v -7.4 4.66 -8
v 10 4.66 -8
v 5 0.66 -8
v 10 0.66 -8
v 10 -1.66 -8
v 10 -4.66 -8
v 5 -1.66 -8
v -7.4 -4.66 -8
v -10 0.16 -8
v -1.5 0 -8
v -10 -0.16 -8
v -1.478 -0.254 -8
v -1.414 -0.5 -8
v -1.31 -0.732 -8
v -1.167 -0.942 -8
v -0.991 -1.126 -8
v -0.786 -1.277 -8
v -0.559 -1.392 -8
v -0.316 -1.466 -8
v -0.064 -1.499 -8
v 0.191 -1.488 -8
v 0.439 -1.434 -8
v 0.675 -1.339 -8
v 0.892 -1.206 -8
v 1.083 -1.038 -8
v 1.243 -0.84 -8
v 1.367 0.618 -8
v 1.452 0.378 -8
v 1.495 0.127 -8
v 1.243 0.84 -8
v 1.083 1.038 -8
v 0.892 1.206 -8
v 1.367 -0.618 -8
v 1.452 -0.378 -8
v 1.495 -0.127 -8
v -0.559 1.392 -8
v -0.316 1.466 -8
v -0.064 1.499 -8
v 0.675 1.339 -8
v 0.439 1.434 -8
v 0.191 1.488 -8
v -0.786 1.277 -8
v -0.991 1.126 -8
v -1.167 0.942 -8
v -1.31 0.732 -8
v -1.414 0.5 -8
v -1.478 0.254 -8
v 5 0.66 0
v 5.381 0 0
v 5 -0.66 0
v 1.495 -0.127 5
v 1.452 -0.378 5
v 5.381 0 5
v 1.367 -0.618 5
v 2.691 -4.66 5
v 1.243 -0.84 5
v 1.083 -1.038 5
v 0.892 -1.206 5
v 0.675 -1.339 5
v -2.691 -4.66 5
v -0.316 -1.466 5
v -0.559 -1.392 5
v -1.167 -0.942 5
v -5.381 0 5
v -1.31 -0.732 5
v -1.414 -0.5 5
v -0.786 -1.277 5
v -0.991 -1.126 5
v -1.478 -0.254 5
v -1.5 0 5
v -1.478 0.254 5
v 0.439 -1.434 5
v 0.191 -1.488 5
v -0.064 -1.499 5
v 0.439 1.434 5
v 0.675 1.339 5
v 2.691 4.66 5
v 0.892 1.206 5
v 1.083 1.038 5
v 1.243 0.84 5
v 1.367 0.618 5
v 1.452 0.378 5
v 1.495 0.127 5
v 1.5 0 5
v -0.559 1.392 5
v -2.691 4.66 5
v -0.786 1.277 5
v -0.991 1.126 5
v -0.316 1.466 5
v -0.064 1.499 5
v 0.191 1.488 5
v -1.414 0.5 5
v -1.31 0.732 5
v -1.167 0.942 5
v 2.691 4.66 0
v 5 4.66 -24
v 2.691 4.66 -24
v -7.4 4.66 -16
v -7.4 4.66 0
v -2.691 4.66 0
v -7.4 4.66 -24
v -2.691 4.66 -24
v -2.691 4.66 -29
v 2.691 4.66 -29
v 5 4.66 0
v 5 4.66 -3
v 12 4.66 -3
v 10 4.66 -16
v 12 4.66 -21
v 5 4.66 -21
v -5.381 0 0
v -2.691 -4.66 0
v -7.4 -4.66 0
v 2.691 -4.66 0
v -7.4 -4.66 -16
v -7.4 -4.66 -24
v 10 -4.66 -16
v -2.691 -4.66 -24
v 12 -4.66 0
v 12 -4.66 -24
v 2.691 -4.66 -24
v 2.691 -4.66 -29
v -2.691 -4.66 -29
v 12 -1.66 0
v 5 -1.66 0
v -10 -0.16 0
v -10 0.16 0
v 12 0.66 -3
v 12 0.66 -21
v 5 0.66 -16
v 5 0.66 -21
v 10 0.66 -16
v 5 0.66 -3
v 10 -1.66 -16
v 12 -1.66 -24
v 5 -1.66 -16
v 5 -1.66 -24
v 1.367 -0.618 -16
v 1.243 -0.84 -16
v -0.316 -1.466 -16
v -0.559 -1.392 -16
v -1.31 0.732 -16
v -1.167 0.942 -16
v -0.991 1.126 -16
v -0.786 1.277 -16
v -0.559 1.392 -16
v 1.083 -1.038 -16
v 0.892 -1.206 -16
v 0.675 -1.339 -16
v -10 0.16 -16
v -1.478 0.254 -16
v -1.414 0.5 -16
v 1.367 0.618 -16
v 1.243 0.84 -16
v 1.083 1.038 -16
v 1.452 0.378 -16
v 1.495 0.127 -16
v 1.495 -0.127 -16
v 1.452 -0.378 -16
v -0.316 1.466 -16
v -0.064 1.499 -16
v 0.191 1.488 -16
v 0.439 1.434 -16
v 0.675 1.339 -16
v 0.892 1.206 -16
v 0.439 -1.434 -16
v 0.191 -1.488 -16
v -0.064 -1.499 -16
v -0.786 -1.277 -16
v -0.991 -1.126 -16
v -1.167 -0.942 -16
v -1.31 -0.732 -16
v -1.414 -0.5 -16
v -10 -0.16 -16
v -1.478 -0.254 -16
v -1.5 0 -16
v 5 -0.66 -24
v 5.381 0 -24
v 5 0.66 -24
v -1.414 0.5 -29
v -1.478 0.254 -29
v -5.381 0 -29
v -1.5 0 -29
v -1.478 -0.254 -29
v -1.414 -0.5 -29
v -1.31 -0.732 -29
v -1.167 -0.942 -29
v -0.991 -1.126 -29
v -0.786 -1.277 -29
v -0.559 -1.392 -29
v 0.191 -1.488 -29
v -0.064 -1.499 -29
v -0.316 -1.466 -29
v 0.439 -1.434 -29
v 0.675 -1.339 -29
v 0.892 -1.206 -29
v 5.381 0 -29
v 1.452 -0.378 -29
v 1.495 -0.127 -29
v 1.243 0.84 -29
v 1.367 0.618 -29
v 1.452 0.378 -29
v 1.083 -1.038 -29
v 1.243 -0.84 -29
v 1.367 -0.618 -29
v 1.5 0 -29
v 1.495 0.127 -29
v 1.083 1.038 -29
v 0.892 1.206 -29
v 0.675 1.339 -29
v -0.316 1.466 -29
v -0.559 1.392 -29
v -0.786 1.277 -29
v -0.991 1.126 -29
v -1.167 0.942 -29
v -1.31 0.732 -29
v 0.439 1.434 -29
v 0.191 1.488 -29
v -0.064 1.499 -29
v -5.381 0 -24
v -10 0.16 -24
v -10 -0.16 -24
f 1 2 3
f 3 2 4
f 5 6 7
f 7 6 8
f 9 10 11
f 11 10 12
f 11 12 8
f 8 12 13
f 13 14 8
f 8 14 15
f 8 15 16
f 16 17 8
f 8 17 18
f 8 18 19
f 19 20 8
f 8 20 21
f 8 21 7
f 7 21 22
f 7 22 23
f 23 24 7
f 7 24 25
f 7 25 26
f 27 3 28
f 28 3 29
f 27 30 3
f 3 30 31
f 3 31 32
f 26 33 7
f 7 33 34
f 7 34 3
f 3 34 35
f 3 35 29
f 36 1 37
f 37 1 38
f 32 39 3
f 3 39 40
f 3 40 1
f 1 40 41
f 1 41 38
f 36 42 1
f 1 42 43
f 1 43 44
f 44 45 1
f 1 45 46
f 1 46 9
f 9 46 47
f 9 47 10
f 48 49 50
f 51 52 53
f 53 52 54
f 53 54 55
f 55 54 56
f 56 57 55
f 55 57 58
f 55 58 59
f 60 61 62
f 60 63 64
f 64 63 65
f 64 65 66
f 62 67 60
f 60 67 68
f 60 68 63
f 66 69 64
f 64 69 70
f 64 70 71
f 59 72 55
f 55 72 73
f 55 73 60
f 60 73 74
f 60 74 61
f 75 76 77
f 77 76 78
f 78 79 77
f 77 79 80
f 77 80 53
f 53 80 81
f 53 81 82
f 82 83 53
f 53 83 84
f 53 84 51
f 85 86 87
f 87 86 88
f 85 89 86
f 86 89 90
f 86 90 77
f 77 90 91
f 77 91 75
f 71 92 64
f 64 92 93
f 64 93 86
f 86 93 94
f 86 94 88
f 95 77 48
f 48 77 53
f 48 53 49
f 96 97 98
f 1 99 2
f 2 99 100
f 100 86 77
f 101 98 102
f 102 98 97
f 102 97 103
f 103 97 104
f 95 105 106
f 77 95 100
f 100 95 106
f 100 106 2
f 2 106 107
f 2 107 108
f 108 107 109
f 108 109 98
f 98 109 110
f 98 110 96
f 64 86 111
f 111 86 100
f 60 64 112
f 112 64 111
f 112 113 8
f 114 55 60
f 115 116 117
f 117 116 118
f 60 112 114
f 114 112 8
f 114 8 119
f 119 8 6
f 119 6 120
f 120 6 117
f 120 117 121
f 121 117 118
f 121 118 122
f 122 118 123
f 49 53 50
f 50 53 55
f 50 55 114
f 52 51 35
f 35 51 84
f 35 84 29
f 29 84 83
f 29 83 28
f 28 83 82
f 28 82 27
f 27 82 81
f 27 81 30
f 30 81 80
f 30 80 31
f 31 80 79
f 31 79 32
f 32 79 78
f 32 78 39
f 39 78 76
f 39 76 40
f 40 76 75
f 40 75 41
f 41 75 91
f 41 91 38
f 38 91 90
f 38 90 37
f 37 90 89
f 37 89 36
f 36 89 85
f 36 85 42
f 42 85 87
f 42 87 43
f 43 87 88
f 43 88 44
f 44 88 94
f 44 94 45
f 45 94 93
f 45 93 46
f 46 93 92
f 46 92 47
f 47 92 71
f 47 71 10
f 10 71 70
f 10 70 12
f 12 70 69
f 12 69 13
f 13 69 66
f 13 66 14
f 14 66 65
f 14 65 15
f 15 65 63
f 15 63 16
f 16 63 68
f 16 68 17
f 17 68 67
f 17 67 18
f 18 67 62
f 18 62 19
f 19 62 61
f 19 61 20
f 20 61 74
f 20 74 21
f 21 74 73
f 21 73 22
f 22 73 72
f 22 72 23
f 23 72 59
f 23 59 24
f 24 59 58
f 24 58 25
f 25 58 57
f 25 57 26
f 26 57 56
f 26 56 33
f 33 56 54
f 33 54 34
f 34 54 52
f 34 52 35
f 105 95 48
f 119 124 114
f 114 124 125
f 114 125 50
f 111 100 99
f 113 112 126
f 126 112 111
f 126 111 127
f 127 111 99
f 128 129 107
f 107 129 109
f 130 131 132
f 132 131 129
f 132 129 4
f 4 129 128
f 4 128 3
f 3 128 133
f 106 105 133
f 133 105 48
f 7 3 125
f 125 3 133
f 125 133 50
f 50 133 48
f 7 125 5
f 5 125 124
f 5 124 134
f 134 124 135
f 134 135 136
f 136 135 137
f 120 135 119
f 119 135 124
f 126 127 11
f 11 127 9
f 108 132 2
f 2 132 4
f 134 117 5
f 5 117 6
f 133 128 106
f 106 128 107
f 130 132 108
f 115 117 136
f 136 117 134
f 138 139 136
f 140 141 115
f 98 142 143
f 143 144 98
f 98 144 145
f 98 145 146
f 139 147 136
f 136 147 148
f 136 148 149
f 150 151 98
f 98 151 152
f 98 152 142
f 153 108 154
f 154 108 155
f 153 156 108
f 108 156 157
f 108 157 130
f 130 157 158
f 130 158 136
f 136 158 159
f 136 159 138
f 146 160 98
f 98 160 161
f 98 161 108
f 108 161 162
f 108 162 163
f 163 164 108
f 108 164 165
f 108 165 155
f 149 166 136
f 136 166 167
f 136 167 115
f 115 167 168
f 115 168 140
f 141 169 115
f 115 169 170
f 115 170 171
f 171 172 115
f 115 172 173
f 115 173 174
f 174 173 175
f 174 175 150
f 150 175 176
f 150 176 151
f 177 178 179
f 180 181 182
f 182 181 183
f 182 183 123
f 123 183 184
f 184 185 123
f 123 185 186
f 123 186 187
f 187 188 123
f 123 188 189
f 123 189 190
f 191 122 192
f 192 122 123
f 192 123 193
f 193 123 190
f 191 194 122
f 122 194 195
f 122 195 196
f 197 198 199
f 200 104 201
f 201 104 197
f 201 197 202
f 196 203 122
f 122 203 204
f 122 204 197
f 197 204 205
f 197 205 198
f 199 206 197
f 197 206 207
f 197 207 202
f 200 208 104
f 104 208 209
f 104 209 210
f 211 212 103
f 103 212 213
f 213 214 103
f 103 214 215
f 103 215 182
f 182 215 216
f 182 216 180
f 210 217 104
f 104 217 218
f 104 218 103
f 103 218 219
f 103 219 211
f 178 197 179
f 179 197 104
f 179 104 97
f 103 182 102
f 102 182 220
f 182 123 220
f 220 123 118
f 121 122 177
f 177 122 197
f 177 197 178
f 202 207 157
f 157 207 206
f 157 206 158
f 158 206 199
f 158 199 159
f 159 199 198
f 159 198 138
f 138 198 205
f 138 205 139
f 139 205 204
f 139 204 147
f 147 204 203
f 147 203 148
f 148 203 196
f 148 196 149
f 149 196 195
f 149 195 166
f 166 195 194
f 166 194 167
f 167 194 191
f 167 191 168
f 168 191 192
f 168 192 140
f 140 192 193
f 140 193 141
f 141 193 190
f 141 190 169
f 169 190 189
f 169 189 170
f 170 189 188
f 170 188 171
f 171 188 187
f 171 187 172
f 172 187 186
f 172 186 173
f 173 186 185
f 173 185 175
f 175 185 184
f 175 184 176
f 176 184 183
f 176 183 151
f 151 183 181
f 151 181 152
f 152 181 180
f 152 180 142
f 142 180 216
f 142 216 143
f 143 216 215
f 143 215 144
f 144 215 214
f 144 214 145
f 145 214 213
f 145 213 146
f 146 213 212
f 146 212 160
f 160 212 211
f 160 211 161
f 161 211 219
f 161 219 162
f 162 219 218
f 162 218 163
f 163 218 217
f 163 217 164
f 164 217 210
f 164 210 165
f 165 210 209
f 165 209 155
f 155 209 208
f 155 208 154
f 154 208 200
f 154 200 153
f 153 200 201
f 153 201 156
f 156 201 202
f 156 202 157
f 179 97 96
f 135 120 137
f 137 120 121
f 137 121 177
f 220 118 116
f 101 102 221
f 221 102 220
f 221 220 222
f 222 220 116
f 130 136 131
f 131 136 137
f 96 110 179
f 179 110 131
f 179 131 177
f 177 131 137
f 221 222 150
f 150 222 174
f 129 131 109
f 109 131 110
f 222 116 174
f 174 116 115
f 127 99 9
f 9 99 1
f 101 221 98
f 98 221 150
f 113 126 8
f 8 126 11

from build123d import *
from OCP.BRepFilletAPI import BRepFilletAPI_MakeChamfer
from build123d.topology import SkipClean

# Parameters (mm, degrees)
ESQUISSE1_R             = 1.5
BOSS_EXTRU_1_DEPTH      = 5
BOSS_EXTRU_3_START      = 8
ESQUISSE3_R             = 1.5
BOSS_EXTRU_3_DEPTH      = 8
ESQUISSE4_W             = 2
ESQUISSE4_H             = 4
ESQUISSE4_H_2           = 3
BOSS_EXTRU_4_DEPTH      = 4
ESQUISSE5_W             = 7
ESQUISSE5_H             = 3
ENL_V_MAT_EXTRU_1_DEPTH = 4
CHANFREIN2_SIZE         = 4.5
CHANFREIN2_SIZE2        = 2.6
CHANFREIN3_SIZE         = 2.6
CHANFREIN3_SIZE2        = 4.5


with BuildPart() as part:
    # Esquisse1 → Boss.-Extru.1 (new body)
    with BuildSketch(Plane.XY):
        Polygon((2.690598923, 4.660254038), (-2.690598923, 4.660254038), (-5.381197846, 0), (-2.690598923, -4.660254038), (2.690598923, -4.660254038), (5.381197846, 0), align=None)
        Circle(ESQUISSE1_R, mode=Mode.SUBTRACT)
    boss_extru_1 = extrude(amount=BOSS_EXTRU_1_DEPTH)

    # Esquisse3 → Boss.-Extru.3 (add)
    with SkipClean():  # the faces are left unmerged after this step: merging them gives an invalid solid
        with BuildSketch(Plane(origin=(0, 0, 0), x_dir=(-1, 0, 0), z_dir=(0, 0, -1)).offset(BOSS_EXTRU_3_START)):
            Polygon((-12, 4.660254038), (10, 4.660254038), (10, -4.660254038), (-12, -4.660254038), (-12, -1.660254038), (-5, -1.660254038), (-5, 0.660254038), (-12, 0.660254038), align=None)
            Circle(ESQUISSE3_R, mode=Mode.SUBTRACT)
        boss_extru_3 = extrude(amount=-BOSS_EXTRU_3_DEPTH)

    # Esquisse4 → Boss.-Extru.4 (add)
    with SkipClean():  # the faces are left unmerged after this step: merging them gives an invalid solid
        with BuildSketch(Plane(origin=(0, 0, -8), x_dir=(-1, 0, 0), z_dir=(0, 0, -1))):
            with Locations((-11, 2.660254038)):
                Rectangle(ESQUISSE4_W, ESQUISSE4_H)
            with Locations((-11, -3.160254038)):
                Rectangle(ESQUISSE4_W, ESQUISSE4_H_2)
        boss_extru_4 = extrude(amount=BOSS_EXTRU_4_DEPTH)

    # Esquisse5 → Enlèv. mat.-Extru.1 (cut)
    with SkipClean():  # the faces are left unmerged after this step: merging them gives an invalid solid
        with BuildSketch(Plane(origin=(0, 4.660254038, 0), x_dir=(1, 0, 0), z_dir=(0, 1, 0))):
            with Locations((8.5, 1.5)):
                Rectangle(ESQUISSE5_W, ESQUISSE5_H)
        enl_v_mat_extru_1 = extrude(amount=-ENL_V_MAT_EXTRU_1_DEPTH, mode=Mode.SUBTRACT)

    # Symétrie3: Boss.-Extru.1, Boss.-Extru.3, Boss.-Extru.4, Enlèv. mat.-Extru.1 across plane
    with SkipClean():  # the faces are left unmerged after this step: merging them gives an invalid solid
        add(boss_extru_1.mirror(Plane.XY.offset(-12)))
        add(boss_extru_3.mirror(Plane.XY.offset(-12)))
        add(boss_extru_4.mirror(Plane.XY.offset(-12)))
        add(enl_v_mat_extru_1.mirror(Plane.XY.offset(-12)), mode=Mode.SUBTRACT)

    # Chanfrein2: one chamfer whose edges measure the first distance from different faces: ONE call of the kernel's chamfer builder (chamfer() names one face for all edges)
    chanfrein2_edges_1 = [part.edges().sort_by_distance(p)[0] for p in [
        (-10, 4.660254038, -4),
    ]]
    chanfrein2_side_1 = [part.faces().sort_by_distance(p)[0] for p in [
        (-10, 0, -4),
    ]]
    chanfrein2_edges_2 = [part.edges().sort_by_distance(p)[0] for p in [
        (-10, -4.660254038, -20),
    ]]
    chanfrein2_side_2 = [part.faces().sort_by_distance(p)[0] for p in [
        (-10, 0, -20),
    ]]
    chanfrein2 = BRepFilletAPI_MakeChamfer(part.part.solid().wrapped)
    for e in chanfrein2_edges_1:
        chanfrein2.Add(CHANFREIN2_SIZE, CHANFREIN2_SIZE2, e.wrapped, chanfrein2_side_1[0].wrapped)  # the first distance lies on this face
    for e in chanfrein2_edges_2:
        chanfrein2.Add(CHANFREIN2_SIZE, CHANFREIN2_SIZE2, e.wrapped, chanfrein2_side_2[0].wrapped)  # the first distance lies on this face
    add(Compound.cast(chanfrein2.Shape()), mode=Mode.REPLACE)

    # Chanfrein3: one chamfer whose edges measure the first distance from different faces: ONE call of the kernel's chamfer builder (chamfer() names one face for all edges)
    chanfrein3_edges_1 = [part.edges().sort_by_distance(p)[0] for p in [
        (-10, -4.660254038, -4),
    ]]
    chanfrein3_side_1 = [part.faces().sort_by_distance(p)[0] for p in [
        (1.3, -4.660254038, -16.404969135),
    ]]
    chanfrein3_edges_2 = [part.edges().sort_by_distance(p)[0] for p in [
        (-10, 4.660254038, -20),
    ]]
    chanfrein3_side_2 = [part.faces().sort_by_distance(p)[0] for p in [
        (-5.045299462, 4.660254038, -0.404969135),
    ]]
    chanfrein3 = BRepFilletAPI_MakeChamfer(part.part.solid().wrapped)
    for e in chanfrein3_edges_1:
        chanfrein3.Add(CHANFREIN3_SIZE, CHANFREIN3_SIZE2, e.wrapped, chanfrein3_side_1[0].wrapped)  # the first distance lies on this face
    for e in chanfrein3_edges_2:
        chanfrein3.Add(CHANFREIN3_SIZE, CHANFREIN3_SIZE2, e.wrapped, chanfrein3_side_2[0].wrapped)  # the first distance lies on this face
    add(Compound.cast(chanfrein3.Shape()), mode=Mode.REPLACE)


solid = part.part
